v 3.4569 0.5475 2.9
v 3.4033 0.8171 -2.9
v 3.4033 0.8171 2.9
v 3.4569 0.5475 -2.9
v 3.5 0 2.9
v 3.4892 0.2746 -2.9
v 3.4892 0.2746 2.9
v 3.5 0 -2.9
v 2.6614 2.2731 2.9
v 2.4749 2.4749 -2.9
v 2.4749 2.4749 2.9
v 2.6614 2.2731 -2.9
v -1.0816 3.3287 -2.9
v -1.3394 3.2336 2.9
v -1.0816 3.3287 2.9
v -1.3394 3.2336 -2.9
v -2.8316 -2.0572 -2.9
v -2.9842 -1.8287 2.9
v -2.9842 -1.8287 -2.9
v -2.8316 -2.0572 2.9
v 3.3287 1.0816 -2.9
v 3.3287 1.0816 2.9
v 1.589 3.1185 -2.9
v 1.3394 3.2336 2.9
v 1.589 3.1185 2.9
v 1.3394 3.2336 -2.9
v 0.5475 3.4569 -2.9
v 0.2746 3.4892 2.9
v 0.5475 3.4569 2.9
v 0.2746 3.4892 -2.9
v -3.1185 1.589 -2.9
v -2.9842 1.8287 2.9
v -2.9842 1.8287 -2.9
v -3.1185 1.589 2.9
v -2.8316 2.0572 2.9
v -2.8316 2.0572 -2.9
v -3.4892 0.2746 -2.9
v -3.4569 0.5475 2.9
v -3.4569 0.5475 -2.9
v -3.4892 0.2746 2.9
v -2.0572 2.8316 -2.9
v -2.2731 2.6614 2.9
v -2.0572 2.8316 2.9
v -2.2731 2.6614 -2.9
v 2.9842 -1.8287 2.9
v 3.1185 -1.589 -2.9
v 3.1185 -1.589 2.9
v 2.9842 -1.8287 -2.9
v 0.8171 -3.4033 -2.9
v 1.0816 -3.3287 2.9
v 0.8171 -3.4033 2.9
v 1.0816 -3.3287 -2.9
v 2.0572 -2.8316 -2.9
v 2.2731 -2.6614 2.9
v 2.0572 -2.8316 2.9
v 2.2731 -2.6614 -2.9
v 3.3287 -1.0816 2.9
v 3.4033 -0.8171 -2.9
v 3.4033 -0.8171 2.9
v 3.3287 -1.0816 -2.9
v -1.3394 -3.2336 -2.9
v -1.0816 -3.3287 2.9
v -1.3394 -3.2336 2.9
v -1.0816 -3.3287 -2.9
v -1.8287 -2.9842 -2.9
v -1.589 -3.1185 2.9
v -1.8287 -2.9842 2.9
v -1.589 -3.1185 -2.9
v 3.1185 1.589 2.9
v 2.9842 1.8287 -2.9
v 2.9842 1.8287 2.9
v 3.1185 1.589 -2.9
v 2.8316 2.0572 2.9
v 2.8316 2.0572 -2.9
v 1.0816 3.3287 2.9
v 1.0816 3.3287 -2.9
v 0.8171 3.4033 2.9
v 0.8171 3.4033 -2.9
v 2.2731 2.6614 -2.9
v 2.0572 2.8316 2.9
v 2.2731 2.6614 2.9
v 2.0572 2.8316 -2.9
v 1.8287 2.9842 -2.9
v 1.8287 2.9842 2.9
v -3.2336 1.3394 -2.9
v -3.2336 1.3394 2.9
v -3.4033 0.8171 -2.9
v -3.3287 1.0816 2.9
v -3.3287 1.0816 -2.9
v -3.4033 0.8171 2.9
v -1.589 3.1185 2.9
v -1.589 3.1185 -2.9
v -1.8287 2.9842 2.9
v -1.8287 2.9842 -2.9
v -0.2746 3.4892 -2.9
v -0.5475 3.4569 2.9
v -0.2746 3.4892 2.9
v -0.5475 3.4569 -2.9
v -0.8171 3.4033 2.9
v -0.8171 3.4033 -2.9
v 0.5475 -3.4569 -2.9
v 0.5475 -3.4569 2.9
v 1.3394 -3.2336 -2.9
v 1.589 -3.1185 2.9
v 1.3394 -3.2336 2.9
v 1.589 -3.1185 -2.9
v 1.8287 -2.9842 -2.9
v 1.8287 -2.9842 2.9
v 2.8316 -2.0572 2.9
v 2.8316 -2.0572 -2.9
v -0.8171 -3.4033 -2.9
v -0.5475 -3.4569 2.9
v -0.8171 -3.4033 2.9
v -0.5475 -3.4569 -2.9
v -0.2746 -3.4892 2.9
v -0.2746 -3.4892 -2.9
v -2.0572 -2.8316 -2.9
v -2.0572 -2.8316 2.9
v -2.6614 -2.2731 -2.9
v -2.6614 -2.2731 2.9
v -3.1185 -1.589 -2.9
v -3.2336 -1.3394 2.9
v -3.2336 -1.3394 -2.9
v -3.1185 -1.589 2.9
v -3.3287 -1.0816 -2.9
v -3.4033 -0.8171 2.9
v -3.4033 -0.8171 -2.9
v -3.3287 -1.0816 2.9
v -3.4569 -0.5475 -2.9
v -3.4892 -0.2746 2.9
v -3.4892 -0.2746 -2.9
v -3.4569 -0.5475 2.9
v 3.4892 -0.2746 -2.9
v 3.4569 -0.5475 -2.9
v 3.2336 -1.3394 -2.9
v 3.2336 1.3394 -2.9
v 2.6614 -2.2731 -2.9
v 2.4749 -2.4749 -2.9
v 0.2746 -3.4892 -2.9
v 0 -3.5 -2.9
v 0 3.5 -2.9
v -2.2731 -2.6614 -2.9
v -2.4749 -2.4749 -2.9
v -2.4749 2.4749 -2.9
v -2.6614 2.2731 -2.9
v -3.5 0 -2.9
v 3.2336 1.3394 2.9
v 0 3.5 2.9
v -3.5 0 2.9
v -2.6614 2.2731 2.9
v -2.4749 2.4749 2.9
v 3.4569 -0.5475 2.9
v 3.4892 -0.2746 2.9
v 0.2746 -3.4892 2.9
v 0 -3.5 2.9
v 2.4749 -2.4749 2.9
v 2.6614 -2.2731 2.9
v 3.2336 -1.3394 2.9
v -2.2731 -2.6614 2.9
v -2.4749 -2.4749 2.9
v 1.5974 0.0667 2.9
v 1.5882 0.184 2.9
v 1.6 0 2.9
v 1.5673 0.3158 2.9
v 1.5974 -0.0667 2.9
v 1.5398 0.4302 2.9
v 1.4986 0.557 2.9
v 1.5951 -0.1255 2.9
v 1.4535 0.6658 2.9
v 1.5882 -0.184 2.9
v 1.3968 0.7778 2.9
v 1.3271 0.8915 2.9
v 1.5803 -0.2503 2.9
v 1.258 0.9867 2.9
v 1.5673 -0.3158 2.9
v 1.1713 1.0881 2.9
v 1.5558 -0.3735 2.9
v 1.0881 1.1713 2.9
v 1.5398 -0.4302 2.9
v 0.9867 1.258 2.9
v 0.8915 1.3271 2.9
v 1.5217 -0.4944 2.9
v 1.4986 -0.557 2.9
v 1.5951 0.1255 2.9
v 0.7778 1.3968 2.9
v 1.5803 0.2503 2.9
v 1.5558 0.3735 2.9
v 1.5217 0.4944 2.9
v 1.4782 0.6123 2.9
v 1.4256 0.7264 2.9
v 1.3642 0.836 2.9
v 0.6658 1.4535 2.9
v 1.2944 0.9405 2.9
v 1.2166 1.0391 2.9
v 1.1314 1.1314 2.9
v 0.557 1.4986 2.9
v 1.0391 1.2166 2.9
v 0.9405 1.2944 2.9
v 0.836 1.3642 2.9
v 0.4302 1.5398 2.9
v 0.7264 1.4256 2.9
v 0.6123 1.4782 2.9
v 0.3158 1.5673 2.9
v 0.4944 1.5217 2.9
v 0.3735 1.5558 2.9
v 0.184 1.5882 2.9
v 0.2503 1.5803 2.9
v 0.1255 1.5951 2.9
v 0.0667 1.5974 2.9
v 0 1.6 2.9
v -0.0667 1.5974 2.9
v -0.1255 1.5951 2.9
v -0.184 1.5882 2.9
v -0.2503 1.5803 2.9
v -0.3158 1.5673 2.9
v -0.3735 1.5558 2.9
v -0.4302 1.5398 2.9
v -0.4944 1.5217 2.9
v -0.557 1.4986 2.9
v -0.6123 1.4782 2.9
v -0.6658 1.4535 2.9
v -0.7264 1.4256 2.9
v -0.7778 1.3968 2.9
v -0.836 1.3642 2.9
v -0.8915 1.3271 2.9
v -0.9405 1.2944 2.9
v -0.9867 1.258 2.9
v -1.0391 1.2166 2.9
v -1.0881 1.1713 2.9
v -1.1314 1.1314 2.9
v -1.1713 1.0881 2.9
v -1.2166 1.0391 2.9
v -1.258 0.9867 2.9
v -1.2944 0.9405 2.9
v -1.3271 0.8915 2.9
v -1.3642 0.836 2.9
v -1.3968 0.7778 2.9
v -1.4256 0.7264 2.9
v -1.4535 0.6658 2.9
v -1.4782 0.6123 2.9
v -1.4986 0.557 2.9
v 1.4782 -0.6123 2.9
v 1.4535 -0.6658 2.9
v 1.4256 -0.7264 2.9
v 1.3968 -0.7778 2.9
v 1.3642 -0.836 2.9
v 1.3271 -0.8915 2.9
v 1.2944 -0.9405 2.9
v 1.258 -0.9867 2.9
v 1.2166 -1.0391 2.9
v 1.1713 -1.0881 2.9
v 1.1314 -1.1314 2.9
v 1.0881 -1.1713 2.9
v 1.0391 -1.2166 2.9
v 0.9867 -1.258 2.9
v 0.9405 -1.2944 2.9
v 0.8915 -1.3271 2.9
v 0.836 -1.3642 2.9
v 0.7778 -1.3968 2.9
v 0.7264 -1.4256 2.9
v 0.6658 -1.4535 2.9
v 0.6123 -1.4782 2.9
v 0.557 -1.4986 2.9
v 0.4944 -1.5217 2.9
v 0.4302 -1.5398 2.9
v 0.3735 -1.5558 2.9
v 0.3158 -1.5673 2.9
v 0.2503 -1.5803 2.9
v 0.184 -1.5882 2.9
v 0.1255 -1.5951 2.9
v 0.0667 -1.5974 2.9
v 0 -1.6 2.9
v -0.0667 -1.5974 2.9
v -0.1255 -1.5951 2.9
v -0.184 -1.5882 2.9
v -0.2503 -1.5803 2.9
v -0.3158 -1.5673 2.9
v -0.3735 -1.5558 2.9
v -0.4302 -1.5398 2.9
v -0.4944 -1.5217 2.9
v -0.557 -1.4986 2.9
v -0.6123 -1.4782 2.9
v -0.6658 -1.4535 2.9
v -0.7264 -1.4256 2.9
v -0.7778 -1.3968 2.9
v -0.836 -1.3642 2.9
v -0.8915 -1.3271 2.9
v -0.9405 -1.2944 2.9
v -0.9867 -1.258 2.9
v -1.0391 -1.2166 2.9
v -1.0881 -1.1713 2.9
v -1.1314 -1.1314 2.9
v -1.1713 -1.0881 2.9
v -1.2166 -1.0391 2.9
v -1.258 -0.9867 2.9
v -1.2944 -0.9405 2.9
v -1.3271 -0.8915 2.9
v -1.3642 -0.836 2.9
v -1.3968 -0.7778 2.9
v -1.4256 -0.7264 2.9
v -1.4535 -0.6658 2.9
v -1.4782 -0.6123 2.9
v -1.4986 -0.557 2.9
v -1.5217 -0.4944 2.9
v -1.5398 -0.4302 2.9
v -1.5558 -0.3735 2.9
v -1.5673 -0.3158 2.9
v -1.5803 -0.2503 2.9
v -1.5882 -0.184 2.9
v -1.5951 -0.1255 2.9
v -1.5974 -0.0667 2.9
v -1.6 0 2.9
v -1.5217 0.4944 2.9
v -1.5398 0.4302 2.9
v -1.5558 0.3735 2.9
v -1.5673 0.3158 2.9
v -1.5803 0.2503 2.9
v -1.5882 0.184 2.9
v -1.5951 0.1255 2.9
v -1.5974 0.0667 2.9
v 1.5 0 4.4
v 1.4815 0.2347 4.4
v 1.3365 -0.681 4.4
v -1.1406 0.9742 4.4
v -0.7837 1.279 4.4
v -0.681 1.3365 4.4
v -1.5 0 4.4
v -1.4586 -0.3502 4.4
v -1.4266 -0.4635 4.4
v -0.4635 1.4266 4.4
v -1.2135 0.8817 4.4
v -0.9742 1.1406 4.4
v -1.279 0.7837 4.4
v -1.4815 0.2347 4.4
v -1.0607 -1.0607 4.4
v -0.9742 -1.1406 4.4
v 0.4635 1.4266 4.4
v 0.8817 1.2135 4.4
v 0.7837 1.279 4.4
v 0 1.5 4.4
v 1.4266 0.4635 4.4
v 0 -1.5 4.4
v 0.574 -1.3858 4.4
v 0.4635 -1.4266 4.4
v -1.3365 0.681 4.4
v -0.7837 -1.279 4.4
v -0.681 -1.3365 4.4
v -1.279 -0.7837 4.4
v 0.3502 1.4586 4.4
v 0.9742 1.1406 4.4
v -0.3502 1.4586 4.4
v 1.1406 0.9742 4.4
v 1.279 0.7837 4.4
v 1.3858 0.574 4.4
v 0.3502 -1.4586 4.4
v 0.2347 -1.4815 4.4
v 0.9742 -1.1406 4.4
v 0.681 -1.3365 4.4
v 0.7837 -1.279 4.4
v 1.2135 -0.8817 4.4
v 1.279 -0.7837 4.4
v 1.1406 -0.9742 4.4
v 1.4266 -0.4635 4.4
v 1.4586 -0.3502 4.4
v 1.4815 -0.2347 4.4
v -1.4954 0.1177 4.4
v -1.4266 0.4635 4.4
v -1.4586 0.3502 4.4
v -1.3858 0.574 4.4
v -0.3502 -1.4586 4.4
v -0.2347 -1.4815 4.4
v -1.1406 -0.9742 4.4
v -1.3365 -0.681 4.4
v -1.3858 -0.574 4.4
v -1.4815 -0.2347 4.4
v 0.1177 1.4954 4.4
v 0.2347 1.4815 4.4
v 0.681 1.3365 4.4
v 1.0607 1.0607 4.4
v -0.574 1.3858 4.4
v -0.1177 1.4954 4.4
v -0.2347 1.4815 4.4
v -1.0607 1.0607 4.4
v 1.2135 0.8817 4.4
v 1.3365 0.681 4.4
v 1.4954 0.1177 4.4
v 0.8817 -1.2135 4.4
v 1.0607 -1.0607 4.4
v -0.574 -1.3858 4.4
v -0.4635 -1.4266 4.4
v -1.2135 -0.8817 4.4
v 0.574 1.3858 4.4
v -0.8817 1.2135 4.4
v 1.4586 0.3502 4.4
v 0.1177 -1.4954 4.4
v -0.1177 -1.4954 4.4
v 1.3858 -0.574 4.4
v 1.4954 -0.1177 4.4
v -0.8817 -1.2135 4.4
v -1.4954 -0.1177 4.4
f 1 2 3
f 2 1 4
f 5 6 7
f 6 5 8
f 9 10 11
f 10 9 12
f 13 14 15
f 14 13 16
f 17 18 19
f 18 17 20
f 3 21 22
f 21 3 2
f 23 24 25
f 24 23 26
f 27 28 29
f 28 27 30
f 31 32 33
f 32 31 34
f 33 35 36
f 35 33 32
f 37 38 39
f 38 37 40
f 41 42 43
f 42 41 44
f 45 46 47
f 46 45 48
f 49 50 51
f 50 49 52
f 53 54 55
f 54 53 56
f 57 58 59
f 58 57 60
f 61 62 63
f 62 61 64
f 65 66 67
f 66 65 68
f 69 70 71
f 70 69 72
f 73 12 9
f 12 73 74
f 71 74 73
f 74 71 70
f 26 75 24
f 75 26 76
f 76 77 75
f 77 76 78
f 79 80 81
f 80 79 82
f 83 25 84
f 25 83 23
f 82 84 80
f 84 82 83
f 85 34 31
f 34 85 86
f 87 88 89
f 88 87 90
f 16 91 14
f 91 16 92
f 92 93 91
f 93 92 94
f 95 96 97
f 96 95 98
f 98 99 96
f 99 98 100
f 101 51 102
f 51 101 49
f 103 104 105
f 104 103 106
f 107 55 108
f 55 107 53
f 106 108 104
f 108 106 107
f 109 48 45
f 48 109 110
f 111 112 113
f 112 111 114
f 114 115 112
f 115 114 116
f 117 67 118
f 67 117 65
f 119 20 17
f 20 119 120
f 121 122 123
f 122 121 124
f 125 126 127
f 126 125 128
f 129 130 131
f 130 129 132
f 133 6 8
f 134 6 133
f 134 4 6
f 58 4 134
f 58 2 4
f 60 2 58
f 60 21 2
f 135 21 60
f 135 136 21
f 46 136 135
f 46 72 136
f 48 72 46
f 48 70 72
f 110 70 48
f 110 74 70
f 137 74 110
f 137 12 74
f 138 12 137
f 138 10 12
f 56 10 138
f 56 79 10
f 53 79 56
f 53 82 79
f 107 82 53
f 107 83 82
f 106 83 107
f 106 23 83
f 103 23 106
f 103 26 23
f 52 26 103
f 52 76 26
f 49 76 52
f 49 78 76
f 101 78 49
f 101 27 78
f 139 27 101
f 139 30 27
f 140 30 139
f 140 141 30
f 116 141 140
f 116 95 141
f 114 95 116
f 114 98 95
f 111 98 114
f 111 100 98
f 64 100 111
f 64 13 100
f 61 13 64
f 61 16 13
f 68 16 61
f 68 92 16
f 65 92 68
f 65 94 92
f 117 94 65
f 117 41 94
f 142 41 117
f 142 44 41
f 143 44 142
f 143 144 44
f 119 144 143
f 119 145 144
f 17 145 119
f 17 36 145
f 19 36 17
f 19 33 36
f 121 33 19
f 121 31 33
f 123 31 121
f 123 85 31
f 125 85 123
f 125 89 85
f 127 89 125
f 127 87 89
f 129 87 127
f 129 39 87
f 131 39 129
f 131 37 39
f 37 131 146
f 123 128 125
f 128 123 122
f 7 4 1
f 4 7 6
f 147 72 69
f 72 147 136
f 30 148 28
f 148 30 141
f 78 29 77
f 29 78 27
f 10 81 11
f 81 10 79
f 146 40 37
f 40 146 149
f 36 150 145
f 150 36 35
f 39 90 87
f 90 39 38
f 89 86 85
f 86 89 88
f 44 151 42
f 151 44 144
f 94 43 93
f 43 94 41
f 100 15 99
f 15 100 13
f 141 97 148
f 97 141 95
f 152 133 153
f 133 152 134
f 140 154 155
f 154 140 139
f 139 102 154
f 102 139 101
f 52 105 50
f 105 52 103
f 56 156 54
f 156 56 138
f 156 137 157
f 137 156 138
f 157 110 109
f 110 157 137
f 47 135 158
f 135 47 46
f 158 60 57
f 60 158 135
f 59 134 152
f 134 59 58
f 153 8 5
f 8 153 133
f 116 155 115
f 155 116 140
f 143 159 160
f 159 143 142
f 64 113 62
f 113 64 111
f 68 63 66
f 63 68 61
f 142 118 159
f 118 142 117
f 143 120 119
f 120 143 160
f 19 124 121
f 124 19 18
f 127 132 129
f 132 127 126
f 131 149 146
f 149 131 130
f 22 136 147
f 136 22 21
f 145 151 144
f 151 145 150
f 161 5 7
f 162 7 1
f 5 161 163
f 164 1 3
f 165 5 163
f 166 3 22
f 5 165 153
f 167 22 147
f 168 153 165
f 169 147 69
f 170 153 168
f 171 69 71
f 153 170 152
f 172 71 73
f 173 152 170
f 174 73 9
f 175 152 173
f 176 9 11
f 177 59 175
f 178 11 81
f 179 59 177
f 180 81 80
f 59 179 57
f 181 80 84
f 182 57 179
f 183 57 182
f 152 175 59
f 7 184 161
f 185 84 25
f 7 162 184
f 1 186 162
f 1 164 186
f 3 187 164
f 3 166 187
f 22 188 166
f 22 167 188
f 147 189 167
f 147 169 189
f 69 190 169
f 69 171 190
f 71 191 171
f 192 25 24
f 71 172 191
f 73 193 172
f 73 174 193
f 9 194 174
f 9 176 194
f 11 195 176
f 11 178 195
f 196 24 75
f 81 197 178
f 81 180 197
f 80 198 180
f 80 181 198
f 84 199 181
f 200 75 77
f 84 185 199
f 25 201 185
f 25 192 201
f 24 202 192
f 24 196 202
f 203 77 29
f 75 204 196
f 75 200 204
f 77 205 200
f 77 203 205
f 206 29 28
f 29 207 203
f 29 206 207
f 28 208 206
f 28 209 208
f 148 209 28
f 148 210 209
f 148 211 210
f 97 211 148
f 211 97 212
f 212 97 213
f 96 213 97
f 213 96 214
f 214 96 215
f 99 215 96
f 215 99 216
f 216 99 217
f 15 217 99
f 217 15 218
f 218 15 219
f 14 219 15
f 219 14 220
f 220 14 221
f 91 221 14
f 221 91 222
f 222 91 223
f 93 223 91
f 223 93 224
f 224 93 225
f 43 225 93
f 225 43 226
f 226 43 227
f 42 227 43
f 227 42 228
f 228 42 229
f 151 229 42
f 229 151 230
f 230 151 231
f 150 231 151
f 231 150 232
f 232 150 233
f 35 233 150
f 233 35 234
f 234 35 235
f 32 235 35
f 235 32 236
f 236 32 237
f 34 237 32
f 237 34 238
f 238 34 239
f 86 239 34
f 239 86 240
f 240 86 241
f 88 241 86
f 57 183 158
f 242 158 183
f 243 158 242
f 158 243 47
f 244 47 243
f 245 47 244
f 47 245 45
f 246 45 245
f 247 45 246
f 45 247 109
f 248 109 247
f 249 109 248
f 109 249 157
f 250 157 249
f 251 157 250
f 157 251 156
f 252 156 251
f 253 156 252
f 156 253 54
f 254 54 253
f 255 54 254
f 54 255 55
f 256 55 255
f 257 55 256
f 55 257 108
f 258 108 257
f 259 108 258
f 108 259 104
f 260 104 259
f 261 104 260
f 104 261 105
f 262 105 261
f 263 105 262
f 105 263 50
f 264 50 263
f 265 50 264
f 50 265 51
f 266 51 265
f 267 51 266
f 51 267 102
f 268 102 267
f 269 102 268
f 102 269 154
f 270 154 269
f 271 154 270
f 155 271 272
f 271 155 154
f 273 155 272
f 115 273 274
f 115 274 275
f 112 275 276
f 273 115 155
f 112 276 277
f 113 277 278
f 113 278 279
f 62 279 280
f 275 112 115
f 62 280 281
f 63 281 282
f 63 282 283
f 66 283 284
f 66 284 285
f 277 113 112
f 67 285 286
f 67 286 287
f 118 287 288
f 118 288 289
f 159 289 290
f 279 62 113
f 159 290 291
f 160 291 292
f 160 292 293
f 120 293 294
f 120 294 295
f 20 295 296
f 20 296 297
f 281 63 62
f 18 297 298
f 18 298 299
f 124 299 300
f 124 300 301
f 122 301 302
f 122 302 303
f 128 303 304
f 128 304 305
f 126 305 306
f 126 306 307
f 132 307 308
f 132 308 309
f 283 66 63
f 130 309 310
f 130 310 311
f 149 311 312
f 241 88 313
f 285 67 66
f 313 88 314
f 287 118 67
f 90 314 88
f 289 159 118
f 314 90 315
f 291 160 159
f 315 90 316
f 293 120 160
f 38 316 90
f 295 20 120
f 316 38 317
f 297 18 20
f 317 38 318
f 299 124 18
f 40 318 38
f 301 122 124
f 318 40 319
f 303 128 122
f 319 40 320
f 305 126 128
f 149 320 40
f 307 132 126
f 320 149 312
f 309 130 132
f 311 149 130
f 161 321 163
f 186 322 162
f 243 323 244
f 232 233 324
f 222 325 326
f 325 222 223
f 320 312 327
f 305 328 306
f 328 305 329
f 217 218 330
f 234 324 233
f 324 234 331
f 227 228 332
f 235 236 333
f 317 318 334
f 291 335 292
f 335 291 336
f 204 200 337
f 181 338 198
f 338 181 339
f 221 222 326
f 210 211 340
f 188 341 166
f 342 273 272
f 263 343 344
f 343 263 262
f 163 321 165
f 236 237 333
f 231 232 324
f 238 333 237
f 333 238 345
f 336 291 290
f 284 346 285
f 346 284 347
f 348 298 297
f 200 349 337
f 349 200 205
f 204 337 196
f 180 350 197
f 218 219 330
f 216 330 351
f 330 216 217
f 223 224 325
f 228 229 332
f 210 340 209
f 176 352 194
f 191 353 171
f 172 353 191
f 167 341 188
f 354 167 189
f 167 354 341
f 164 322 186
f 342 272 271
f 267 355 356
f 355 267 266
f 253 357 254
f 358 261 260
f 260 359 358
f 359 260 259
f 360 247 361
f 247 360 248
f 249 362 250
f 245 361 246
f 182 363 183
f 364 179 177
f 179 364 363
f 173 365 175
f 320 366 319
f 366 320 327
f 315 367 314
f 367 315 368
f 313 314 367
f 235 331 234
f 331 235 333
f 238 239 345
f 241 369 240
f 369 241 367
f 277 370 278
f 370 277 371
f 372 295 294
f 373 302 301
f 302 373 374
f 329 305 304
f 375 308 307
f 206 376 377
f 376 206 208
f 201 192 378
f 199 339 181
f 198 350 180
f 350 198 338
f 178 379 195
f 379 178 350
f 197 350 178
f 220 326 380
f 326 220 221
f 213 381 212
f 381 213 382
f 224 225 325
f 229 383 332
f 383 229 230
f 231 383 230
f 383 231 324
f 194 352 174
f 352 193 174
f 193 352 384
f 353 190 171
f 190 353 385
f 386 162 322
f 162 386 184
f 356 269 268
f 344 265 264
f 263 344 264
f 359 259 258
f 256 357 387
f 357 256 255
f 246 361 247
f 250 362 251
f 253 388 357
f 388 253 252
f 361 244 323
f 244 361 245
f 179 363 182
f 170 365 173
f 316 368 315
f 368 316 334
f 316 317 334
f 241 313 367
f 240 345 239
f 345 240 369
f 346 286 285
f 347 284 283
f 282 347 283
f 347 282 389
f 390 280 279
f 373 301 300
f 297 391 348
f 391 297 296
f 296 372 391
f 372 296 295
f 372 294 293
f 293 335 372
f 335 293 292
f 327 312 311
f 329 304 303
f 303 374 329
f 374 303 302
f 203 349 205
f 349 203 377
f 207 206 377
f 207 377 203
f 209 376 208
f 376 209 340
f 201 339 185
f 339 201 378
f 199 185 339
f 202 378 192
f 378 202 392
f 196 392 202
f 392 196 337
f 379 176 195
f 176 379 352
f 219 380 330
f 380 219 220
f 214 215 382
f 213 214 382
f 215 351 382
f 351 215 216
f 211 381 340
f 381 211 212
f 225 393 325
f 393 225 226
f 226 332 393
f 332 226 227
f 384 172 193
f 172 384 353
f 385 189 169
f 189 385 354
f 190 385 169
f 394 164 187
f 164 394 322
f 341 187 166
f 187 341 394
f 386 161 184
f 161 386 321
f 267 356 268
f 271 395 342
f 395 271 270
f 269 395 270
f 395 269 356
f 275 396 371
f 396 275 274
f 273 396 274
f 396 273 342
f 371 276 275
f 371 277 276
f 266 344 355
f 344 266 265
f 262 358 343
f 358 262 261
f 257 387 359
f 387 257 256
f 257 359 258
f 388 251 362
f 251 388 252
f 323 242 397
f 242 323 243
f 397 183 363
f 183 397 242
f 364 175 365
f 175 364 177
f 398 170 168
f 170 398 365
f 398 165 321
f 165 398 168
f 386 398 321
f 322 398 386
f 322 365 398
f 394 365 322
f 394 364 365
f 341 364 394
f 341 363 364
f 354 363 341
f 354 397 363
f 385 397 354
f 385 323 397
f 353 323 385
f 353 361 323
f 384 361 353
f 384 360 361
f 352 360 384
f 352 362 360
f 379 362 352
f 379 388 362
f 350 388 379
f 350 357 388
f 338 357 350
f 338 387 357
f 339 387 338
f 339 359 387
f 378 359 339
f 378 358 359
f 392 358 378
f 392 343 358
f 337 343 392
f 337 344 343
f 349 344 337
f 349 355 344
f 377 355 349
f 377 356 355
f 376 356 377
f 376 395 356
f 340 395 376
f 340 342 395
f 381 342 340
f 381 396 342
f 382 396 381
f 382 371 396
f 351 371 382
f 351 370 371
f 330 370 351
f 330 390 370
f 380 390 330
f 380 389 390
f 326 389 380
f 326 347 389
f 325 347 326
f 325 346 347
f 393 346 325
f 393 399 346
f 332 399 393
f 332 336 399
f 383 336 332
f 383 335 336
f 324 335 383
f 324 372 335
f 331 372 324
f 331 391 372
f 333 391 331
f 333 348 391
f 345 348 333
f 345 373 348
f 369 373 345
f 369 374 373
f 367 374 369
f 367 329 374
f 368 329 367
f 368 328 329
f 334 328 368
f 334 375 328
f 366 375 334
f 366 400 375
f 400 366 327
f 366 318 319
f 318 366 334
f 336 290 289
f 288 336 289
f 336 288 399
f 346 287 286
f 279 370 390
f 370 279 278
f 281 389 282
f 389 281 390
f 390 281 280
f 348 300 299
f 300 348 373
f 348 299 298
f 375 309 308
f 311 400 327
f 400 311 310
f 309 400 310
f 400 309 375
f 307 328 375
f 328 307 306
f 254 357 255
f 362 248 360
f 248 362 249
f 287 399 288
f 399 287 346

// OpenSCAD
//Platinen Pin 

$fn=80;
Rgr = 3.5;  //Radius PIN 
R1kl = 1.7; //Radius 1 Stift
R2kl = 1.5; //Radius 2 Stift
Sh = 5.8;     //Sockelhöhe

color("WhiteSmoke")
cylinder(h = Sh, r1=Rgr , r2=Rgr , center = true); //Sockel
translate(v = [0, 0, Sh/2])
color("WhiteSmoke")
cylinder(h = 3, r1 = R1kl, r2 = R2kl, center = true); //Pin
